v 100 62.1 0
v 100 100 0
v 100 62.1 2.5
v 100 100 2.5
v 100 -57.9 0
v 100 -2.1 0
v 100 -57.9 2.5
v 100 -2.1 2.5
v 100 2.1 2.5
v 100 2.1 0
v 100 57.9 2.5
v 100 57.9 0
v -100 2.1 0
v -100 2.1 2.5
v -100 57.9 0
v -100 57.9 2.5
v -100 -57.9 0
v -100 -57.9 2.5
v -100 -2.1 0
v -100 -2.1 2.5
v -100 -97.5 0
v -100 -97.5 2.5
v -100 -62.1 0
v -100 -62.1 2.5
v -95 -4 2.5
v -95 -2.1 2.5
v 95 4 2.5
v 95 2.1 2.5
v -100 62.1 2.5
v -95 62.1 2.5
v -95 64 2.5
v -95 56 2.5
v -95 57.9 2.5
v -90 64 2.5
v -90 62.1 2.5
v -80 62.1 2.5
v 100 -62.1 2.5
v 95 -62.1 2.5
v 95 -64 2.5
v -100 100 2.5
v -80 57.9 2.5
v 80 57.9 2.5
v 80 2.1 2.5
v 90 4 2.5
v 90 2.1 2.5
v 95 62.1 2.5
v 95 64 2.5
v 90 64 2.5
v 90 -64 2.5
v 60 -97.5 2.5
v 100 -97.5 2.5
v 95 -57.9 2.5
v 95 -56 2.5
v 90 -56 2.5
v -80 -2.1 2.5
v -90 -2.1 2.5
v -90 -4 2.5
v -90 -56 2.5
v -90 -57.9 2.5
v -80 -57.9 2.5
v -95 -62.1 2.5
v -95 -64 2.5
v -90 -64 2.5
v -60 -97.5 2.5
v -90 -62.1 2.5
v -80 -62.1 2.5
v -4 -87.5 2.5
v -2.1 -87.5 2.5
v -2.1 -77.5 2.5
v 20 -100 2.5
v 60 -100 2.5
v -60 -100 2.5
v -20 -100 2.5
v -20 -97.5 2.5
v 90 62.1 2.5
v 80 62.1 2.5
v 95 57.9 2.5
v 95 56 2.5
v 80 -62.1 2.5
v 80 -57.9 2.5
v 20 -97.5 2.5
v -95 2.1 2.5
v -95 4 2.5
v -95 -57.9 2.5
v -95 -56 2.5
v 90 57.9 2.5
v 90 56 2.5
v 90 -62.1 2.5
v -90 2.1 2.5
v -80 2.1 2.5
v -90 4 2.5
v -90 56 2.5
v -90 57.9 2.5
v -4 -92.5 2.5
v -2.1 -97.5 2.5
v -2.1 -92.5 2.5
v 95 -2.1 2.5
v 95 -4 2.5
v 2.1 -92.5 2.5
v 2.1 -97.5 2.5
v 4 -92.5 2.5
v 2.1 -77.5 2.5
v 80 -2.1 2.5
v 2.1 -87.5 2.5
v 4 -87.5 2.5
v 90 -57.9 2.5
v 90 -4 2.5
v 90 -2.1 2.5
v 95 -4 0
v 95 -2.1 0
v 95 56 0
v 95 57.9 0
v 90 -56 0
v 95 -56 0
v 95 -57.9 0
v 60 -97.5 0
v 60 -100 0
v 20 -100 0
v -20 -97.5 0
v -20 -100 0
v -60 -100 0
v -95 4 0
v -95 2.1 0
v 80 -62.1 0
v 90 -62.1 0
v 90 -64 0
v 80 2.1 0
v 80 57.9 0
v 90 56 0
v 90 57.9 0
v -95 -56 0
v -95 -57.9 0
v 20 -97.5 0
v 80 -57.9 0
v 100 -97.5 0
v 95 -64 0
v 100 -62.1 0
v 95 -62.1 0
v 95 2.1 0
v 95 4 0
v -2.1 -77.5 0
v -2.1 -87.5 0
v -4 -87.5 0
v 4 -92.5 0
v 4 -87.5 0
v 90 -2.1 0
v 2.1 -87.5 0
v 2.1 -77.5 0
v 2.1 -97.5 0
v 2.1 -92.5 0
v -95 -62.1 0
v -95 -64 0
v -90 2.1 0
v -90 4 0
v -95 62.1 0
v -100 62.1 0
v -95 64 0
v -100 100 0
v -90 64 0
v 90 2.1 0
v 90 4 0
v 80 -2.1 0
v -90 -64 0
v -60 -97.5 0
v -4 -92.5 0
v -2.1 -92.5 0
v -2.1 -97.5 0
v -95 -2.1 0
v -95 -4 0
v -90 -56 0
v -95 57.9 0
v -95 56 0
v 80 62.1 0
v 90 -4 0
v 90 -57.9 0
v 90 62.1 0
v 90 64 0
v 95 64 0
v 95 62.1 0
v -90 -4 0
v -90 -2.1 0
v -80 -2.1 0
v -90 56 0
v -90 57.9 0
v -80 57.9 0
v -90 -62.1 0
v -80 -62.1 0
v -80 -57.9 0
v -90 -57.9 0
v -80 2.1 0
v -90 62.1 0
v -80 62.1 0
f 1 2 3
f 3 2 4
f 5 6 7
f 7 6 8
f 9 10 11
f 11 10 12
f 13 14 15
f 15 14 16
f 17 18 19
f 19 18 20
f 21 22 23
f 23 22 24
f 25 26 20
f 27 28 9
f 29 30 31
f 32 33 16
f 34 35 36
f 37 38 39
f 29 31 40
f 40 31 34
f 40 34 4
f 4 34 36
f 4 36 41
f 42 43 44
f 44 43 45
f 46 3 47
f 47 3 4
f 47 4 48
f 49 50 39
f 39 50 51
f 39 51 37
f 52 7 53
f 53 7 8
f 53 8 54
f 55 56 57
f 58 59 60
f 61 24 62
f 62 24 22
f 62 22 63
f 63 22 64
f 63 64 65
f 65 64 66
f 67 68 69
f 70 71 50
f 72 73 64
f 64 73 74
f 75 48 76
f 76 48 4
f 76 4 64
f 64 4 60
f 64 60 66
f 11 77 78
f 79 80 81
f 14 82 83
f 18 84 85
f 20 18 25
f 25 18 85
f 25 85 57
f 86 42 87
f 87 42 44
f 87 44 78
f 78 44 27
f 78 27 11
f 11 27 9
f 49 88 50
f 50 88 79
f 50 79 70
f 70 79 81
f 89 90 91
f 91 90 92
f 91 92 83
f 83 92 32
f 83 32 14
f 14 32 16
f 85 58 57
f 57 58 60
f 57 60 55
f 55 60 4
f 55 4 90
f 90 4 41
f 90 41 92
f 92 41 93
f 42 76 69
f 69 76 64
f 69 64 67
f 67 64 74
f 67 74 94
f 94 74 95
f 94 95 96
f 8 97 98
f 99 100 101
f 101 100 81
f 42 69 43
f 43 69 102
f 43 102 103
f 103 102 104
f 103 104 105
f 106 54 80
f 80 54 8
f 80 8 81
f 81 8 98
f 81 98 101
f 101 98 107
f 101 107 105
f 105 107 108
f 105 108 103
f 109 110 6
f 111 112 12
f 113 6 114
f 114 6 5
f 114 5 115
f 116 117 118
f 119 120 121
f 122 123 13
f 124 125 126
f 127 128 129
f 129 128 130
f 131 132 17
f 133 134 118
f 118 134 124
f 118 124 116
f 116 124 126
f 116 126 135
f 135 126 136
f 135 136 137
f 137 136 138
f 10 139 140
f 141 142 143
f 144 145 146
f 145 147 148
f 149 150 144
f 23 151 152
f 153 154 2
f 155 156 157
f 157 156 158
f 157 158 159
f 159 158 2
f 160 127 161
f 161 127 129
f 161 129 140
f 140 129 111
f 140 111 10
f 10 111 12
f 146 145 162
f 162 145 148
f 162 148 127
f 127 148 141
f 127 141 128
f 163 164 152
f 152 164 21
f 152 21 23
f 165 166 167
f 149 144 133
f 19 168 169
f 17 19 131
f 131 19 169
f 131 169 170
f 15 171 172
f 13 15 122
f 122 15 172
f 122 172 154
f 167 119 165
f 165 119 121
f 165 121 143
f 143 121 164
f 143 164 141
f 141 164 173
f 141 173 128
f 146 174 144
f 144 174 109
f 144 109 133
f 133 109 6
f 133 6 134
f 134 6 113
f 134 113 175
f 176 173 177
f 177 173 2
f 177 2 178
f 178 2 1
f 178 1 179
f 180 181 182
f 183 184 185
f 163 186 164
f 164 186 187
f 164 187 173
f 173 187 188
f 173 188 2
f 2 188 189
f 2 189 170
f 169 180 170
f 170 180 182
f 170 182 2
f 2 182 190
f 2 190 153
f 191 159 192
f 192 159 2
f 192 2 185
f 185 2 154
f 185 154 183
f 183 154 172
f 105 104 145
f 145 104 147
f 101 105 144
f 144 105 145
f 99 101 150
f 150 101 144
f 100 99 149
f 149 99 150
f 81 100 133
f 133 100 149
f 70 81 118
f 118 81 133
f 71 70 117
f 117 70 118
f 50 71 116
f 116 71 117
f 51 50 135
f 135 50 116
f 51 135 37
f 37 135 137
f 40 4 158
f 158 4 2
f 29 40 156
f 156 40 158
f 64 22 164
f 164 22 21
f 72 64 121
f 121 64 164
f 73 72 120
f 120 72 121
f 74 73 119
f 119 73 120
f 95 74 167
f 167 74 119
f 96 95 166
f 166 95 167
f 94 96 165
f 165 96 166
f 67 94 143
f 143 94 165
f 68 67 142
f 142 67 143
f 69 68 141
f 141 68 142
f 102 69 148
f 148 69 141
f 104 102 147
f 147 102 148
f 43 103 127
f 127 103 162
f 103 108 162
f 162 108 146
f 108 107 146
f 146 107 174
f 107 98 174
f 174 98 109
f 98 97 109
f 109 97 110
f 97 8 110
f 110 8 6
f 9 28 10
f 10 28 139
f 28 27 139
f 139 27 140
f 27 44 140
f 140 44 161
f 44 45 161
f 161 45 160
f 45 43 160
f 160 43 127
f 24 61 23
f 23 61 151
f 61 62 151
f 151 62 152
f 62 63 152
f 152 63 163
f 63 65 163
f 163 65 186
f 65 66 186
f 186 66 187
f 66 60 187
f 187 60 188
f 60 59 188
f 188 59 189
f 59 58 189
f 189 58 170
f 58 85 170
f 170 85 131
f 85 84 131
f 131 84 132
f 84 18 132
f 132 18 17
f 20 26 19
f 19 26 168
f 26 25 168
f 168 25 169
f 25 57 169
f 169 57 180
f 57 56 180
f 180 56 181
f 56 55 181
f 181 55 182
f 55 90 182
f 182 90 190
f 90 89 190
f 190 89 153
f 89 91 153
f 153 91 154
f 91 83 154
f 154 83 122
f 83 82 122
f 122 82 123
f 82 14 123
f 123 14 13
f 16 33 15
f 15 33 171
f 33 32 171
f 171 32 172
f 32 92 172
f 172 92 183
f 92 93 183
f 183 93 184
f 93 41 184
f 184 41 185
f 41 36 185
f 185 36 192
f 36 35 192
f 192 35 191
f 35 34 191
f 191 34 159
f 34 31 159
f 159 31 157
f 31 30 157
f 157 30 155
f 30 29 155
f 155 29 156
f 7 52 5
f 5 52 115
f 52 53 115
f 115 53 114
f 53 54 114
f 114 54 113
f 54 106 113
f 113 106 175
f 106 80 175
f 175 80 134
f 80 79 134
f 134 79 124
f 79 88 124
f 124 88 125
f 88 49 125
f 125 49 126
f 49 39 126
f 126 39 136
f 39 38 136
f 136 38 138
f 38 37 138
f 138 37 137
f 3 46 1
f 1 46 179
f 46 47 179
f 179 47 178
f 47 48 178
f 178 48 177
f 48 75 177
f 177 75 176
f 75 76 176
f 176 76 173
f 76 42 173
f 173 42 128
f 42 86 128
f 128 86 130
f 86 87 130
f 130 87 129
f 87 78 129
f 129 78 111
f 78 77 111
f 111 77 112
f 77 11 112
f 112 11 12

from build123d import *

# Parameters (mm, degrees)
BOSS_EXTRUDE1_DEPTH = 2.5
CUT_EXTRUDE1_DEPTH  = 2.5


with BuildPart() as part:
    # Sketch1 → Boss-Extrude1 (new body)
    with BuildSketch(Plane.XY):
        Polygon((-60, -100), (-20, -100), (-20, -97.5), (-2.1, -97.5), (-2.1, -92.5), (-4, -92.5), (-4, -87.5), (-2.1, -87.5), (-2.1, -77.5), (0, -77.5), (2.1, -77.5), (2.1, -87.5), (4, -87.5), (4, -92.5), (2.1, -92.5), (2.1, -97.5), (20, -97.5), (20, -100), (60, -100), (60, -97.5), (100, -97.5), (100, 100), (-100, 100), (-100, -97.5), (-60, -97.5), align=None)
    extrude(amount=BOSS_EXTRUDE1_DEPTH)

    # Sketch4 → Cut-Extrude1 (cut)
    with BuildSketch(Plane(origin=(0, 0, 0), x_dir=(-1, 0, 0), z_dir=(0, 0, -1))):
        Polygon((-80, 0), (-100, 0), (-100, -2.1), (-95, -2.1), (-95, -4), (-90, -4), (-90, -2.1), (-80, -2.1), align=None)
        Polygon((-95, 2.1), (-100, 2.1), (-100, 0), (-80, 0), (-80, 2.1), (-90, 2.1), (-90, 4), (-95, 4), align=None)
        Polygon((-95, 62.1), (-100, 62.1), (-100, 57.9), (-95, 57.9), (-95, 56), (-90, 56), (-90, 57.9), (-80, 57.9), (-80, 62.1), (-90, 62.1), (-90, 64), (-95, 64), align=None)
        Polygon((-95, -57.9), (-100, -57.9), (-100, -62.1), (-95, -62.1), (-95, -64), (-90, -64), (-90, -62.1), (-80, -62.1), (-80, -57.9), (-90, -57.9), (-90, -56), (-95, -56), align=None)
        Polygon((95, 57.9), (100, 57.9), (100, 62.1), (95, 62.1), (95, 64), (90, 64), (90, 62.1), (80, 62.1), (80, 57.9), (90, 57.9), (90, 56), (95, 56), align=None)
        Polygon((95, -2.1), (100, -2.1), (100, 2.1), (95, 2.1), (95, 4), (90, 4), (90, 2.1), (80, 2.1), (80, -2.1), (90, -2.1), (90, -4), (95, -4), align=None)
        Polygon((100, -62.1), (100, -57.9), (95, -57.9), (95, -56), (90, -56), (90, -57.9), (80, -57.9), (80, -62.1), (90, -62.1), (90, -64), (95, -64), (95, -62.1), align=None)
    extrude(amount=-CUT_EXTRUDE1_DEPTH, mode=Mode.SUBTRACT)


solid = part.part
